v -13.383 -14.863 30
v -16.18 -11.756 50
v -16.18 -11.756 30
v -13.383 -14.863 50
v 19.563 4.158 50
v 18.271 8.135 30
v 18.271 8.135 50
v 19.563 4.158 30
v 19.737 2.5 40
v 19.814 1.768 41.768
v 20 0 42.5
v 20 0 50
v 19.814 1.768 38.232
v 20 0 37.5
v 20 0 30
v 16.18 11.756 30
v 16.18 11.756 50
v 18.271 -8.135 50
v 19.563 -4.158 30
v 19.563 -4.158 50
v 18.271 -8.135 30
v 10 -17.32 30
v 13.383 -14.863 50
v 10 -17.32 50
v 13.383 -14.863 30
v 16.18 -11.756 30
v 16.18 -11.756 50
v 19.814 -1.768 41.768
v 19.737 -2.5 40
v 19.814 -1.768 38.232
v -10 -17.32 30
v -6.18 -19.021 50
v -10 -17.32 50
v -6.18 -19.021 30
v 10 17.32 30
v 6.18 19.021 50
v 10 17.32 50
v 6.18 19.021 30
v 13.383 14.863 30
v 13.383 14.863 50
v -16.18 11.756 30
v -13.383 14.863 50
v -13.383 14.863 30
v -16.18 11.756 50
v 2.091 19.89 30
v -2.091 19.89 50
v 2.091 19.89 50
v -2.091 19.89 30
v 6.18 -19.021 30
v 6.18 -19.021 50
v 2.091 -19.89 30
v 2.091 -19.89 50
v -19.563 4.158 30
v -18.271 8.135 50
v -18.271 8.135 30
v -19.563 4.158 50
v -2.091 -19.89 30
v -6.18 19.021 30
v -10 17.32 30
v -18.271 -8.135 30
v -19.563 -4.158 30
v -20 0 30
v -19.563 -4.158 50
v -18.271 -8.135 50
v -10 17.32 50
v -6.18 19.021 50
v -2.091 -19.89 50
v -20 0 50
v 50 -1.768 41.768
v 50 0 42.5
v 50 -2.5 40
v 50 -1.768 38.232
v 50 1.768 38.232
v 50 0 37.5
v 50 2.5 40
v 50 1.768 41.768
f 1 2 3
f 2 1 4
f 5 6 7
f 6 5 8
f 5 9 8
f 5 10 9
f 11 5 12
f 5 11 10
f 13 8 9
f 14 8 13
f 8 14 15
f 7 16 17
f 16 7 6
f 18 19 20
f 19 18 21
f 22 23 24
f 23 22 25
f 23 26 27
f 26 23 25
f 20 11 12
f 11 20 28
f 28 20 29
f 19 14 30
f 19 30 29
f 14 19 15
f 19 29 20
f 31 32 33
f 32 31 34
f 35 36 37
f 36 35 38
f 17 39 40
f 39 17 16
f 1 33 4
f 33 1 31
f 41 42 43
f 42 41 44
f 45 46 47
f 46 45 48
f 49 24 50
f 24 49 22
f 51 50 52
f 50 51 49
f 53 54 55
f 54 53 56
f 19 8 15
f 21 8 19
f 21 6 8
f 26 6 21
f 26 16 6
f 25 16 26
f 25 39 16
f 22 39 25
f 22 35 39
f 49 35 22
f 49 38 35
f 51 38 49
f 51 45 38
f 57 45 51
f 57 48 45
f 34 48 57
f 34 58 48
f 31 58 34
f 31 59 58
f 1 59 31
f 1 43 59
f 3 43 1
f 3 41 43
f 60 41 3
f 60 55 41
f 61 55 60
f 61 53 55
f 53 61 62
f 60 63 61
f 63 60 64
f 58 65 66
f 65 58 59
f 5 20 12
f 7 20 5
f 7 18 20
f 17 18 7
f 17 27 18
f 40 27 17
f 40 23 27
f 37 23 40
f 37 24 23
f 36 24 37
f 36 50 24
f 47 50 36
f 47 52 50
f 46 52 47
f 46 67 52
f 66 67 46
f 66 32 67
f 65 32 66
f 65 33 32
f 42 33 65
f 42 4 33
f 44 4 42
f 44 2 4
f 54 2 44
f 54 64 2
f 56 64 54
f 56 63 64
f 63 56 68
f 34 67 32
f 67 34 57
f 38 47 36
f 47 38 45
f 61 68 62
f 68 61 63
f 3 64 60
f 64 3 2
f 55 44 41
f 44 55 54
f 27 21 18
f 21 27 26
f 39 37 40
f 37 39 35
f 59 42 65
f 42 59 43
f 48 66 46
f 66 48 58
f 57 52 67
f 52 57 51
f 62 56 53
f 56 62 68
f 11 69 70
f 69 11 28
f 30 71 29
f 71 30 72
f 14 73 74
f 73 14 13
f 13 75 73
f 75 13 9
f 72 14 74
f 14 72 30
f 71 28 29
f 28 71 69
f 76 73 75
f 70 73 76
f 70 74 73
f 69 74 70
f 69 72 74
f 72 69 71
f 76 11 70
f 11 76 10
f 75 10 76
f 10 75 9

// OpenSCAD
// Simple Tank Model in OpenSCAD

// Tank dimensions
tank_length = 100;
tank_height = 30;
turret_diameter = 40;
turret_height = 20;
barrel_length = 50;
barrel_diameter = 5;


// Turret
module turret() {
    translate([0, 0, tank_height + turret_height / 2])
        cylinder(h = turret_height, r = turret_diameter / 2, center = true);
}

// Barrel
module barrel() {
    translate([0, 0, tank_height + turret_height])
        rotate([0, 90, 0])
        translate([(turret_height / 2 ), 0, (barrel_length/2)])
        cylinder(h = barrel_length, r = barrel_diameter / 2, center = true);
}

// Assemble the tank
module full_turret() {
    turret();
    barrel();
}

full_turret();
